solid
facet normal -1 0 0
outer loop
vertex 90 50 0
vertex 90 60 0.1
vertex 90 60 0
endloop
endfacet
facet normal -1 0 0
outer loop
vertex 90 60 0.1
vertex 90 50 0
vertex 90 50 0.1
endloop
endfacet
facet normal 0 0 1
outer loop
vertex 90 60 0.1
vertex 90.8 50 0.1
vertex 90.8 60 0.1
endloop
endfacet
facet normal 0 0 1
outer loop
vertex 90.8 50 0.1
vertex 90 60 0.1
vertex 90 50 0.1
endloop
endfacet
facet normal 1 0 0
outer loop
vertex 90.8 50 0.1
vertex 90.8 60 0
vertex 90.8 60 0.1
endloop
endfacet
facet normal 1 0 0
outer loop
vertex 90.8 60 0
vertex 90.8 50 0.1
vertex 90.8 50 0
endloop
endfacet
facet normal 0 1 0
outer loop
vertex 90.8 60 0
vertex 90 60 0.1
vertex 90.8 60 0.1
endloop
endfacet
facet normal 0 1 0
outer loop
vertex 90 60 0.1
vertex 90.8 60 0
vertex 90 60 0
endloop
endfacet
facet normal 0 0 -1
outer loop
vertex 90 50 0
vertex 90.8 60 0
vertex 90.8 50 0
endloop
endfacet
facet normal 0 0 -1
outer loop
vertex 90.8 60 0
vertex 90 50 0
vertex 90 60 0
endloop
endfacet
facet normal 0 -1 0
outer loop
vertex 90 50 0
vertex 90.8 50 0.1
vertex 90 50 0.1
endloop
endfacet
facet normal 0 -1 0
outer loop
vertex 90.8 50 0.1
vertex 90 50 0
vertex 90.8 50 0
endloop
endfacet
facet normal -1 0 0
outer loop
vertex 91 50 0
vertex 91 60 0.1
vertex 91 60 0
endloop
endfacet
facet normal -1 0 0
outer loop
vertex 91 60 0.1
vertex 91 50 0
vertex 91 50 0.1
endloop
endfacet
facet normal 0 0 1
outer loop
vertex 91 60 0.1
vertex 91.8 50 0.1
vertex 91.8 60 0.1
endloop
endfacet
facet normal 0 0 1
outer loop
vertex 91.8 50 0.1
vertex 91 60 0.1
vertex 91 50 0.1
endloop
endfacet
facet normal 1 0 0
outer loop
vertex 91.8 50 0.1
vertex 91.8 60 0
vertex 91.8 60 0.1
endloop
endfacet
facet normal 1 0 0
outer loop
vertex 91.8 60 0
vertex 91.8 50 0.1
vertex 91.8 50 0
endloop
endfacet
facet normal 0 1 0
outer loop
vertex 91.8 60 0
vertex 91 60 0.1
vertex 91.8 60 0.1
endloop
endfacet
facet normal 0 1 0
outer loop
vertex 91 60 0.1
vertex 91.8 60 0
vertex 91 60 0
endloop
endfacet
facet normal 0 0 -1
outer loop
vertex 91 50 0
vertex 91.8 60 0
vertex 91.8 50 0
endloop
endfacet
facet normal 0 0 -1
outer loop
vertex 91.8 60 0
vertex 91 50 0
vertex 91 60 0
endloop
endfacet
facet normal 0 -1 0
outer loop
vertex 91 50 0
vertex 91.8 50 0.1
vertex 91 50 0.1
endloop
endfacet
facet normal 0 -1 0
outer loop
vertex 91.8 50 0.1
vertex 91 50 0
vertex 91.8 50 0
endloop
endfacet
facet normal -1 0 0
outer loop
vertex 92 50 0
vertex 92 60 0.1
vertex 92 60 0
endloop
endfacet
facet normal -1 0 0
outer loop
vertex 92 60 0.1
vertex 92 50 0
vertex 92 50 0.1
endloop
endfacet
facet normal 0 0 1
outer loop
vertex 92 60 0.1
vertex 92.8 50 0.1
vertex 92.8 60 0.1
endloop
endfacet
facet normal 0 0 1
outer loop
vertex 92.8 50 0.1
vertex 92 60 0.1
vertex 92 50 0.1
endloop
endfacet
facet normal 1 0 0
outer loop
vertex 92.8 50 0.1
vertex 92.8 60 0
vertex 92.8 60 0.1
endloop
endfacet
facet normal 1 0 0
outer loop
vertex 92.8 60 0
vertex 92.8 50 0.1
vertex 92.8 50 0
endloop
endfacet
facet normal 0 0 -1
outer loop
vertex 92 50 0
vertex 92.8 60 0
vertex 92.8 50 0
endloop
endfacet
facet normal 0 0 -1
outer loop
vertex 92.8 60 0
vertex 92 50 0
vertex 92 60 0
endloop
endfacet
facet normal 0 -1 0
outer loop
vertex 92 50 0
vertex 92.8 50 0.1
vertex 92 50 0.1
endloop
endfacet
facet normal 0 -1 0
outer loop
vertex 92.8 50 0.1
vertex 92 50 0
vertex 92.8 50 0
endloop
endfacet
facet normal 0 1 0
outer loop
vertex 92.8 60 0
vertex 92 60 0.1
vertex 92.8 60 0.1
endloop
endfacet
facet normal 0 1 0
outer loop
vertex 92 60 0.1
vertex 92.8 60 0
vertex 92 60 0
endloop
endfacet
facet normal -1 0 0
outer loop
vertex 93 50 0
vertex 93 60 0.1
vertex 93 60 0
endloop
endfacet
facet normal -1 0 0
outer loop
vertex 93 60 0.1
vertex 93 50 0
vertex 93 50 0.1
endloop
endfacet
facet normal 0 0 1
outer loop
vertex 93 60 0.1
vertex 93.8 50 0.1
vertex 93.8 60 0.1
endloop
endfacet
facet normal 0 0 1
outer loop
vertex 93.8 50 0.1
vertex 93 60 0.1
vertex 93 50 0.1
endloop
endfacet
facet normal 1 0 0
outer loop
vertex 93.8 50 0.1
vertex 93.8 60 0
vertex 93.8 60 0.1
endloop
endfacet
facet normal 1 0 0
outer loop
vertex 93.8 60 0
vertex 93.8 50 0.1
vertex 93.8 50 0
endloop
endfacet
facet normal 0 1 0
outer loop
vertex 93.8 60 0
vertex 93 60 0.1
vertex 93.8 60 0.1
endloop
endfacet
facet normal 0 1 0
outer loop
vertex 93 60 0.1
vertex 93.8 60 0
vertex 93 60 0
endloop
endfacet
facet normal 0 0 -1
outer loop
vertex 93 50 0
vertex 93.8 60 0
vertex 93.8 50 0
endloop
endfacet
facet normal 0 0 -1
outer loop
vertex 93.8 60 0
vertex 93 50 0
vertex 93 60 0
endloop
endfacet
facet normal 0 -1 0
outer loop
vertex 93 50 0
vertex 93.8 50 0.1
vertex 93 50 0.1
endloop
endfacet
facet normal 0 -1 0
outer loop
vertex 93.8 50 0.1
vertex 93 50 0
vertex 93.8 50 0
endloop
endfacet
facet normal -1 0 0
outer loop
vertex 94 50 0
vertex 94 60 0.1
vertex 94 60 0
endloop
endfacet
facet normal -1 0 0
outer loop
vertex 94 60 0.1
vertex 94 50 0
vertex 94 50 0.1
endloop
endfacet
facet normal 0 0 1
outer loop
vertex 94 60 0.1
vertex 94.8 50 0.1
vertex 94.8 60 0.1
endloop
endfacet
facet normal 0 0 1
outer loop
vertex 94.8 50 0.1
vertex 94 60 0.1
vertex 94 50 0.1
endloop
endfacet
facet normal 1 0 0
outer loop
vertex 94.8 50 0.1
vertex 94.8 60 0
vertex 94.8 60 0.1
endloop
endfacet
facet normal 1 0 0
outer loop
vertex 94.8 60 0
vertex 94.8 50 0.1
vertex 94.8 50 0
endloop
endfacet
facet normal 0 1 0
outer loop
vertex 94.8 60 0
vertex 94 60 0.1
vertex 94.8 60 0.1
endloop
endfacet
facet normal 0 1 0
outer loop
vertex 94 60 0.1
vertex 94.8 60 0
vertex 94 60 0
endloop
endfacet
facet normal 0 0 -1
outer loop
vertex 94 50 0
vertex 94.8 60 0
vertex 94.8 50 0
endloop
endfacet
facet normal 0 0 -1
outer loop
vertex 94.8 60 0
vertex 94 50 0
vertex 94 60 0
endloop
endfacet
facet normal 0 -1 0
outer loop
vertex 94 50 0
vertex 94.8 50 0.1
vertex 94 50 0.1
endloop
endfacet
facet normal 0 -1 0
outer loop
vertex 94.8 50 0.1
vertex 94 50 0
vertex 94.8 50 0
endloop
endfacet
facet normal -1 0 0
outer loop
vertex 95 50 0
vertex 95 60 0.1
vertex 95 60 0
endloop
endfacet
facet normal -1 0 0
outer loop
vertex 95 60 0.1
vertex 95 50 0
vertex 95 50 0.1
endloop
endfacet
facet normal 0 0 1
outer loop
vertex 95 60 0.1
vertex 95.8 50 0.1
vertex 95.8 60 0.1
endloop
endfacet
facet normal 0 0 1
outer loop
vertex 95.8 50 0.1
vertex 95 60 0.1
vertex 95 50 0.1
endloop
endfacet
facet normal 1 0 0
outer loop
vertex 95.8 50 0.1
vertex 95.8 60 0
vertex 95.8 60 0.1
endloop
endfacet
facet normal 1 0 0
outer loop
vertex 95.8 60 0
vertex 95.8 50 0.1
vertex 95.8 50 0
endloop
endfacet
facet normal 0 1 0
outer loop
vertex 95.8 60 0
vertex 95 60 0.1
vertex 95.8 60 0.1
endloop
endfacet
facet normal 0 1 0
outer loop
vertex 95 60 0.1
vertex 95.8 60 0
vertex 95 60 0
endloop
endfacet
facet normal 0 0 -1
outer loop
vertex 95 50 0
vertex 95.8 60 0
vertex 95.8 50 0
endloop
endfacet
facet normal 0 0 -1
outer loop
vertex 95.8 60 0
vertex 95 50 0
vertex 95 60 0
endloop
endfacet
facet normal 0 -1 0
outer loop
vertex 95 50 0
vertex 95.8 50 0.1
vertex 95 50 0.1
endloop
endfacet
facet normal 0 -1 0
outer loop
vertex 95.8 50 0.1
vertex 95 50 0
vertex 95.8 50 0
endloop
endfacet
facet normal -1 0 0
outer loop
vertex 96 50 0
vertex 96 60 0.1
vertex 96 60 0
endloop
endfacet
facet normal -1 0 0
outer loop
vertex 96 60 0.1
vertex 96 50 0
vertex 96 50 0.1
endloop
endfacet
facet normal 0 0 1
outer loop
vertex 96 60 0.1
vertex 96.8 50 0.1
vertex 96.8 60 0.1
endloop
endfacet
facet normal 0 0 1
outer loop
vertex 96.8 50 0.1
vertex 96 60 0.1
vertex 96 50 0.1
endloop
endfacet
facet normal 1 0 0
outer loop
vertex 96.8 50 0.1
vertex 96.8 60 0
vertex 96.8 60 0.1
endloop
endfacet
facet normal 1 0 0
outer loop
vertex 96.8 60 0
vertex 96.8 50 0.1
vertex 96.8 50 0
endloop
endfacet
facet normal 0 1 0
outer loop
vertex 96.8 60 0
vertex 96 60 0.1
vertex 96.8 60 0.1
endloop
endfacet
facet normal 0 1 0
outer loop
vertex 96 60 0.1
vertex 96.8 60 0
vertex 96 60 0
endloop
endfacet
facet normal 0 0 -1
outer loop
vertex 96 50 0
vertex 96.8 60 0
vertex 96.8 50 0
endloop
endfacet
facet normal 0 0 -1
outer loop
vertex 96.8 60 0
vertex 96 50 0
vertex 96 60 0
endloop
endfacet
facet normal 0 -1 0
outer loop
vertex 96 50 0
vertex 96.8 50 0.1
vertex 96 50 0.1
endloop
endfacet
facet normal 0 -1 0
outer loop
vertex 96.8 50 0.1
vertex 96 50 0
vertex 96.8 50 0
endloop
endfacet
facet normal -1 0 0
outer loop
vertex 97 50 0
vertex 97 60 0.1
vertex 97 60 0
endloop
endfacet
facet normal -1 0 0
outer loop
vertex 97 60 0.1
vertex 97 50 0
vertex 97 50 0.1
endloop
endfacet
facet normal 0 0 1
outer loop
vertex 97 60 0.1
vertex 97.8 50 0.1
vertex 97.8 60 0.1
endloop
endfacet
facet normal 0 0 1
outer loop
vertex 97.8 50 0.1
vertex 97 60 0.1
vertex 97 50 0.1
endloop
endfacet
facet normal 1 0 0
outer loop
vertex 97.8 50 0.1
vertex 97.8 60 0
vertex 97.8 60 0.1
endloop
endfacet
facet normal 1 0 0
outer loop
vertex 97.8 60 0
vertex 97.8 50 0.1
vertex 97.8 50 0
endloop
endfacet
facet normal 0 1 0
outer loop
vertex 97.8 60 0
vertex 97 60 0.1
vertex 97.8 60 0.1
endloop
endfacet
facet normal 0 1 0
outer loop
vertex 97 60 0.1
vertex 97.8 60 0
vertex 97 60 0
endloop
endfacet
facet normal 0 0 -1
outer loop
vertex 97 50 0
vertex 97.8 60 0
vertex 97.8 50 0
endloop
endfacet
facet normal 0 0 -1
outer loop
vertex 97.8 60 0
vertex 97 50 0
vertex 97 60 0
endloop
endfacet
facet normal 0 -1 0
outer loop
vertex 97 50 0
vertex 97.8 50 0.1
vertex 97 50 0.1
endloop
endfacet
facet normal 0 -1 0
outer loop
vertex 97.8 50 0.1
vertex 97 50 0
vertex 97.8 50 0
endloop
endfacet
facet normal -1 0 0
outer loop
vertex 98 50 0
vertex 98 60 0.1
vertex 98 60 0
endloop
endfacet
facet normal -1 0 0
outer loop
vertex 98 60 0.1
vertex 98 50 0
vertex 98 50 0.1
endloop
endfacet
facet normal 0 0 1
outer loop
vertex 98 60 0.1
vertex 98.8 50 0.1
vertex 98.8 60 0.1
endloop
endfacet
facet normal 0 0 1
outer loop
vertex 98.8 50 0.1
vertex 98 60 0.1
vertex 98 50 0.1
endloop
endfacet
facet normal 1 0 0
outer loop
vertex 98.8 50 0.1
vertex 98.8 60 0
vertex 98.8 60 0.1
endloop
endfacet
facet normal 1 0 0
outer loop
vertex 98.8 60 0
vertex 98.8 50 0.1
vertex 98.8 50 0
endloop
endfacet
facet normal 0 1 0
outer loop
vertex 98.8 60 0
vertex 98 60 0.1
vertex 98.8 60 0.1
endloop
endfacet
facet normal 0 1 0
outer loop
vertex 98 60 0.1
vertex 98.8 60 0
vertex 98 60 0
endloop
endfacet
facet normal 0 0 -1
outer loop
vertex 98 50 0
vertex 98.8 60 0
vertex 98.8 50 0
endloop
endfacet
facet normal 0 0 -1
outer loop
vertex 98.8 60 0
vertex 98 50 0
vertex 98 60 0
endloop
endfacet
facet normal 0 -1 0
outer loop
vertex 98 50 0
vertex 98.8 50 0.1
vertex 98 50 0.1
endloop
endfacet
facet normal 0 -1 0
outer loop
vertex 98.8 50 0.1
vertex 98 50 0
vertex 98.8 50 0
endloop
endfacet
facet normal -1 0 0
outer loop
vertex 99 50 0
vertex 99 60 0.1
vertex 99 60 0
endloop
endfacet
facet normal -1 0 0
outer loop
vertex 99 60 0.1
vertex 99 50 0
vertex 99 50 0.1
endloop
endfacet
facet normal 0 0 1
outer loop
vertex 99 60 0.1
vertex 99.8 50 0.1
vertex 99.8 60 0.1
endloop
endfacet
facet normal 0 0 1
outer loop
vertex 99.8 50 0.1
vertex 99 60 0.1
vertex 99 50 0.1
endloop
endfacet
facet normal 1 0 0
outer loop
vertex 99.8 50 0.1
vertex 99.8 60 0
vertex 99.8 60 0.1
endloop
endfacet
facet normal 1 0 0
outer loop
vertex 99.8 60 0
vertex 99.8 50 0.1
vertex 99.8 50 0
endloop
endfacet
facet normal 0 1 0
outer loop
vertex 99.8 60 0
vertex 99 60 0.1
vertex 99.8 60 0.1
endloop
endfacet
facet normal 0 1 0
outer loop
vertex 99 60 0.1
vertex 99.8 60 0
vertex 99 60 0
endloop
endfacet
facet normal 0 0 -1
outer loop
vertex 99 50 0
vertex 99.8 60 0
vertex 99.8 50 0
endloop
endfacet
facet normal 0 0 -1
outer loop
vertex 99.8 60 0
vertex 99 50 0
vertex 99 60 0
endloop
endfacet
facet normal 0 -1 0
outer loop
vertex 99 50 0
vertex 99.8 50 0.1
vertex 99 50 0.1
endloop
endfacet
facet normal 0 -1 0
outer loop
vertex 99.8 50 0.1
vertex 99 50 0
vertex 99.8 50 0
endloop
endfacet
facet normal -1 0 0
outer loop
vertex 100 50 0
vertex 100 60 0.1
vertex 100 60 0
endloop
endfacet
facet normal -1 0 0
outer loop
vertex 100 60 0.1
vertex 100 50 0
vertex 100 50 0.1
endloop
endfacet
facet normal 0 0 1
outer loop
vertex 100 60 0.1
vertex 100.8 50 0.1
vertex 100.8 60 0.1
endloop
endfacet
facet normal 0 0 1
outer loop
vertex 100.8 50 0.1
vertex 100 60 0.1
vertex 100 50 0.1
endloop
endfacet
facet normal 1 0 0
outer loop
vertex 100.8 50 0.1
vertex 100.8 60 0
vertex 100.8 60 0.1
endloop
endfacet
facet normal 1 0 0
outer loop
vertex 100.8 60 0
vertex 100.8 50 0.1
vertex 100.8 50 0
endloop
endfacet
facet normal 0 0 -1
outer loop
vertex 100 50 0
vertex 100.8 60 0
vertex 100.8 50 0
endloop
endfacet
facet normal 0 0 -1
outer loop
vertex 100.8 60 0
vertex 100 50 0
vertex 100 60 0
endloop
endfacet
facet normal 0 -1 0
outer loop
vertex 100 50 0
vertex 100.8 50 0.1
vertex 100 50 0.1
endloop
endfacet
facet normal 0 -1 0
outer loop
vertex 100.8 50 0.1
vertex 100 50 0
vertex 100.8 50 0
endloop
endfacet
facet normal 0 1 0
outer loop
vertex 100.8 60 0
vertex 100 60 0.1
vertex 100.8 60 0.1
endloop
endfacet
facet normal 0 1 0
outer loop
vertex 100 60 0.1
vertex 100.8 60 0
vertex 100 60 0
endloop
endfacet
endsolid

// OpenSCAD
translate([10+80,10+40,0])
        for (i = [0 : 10]){
            translate([i,0,0])
                cube(size = [0.8,10,0.1]);
    }
